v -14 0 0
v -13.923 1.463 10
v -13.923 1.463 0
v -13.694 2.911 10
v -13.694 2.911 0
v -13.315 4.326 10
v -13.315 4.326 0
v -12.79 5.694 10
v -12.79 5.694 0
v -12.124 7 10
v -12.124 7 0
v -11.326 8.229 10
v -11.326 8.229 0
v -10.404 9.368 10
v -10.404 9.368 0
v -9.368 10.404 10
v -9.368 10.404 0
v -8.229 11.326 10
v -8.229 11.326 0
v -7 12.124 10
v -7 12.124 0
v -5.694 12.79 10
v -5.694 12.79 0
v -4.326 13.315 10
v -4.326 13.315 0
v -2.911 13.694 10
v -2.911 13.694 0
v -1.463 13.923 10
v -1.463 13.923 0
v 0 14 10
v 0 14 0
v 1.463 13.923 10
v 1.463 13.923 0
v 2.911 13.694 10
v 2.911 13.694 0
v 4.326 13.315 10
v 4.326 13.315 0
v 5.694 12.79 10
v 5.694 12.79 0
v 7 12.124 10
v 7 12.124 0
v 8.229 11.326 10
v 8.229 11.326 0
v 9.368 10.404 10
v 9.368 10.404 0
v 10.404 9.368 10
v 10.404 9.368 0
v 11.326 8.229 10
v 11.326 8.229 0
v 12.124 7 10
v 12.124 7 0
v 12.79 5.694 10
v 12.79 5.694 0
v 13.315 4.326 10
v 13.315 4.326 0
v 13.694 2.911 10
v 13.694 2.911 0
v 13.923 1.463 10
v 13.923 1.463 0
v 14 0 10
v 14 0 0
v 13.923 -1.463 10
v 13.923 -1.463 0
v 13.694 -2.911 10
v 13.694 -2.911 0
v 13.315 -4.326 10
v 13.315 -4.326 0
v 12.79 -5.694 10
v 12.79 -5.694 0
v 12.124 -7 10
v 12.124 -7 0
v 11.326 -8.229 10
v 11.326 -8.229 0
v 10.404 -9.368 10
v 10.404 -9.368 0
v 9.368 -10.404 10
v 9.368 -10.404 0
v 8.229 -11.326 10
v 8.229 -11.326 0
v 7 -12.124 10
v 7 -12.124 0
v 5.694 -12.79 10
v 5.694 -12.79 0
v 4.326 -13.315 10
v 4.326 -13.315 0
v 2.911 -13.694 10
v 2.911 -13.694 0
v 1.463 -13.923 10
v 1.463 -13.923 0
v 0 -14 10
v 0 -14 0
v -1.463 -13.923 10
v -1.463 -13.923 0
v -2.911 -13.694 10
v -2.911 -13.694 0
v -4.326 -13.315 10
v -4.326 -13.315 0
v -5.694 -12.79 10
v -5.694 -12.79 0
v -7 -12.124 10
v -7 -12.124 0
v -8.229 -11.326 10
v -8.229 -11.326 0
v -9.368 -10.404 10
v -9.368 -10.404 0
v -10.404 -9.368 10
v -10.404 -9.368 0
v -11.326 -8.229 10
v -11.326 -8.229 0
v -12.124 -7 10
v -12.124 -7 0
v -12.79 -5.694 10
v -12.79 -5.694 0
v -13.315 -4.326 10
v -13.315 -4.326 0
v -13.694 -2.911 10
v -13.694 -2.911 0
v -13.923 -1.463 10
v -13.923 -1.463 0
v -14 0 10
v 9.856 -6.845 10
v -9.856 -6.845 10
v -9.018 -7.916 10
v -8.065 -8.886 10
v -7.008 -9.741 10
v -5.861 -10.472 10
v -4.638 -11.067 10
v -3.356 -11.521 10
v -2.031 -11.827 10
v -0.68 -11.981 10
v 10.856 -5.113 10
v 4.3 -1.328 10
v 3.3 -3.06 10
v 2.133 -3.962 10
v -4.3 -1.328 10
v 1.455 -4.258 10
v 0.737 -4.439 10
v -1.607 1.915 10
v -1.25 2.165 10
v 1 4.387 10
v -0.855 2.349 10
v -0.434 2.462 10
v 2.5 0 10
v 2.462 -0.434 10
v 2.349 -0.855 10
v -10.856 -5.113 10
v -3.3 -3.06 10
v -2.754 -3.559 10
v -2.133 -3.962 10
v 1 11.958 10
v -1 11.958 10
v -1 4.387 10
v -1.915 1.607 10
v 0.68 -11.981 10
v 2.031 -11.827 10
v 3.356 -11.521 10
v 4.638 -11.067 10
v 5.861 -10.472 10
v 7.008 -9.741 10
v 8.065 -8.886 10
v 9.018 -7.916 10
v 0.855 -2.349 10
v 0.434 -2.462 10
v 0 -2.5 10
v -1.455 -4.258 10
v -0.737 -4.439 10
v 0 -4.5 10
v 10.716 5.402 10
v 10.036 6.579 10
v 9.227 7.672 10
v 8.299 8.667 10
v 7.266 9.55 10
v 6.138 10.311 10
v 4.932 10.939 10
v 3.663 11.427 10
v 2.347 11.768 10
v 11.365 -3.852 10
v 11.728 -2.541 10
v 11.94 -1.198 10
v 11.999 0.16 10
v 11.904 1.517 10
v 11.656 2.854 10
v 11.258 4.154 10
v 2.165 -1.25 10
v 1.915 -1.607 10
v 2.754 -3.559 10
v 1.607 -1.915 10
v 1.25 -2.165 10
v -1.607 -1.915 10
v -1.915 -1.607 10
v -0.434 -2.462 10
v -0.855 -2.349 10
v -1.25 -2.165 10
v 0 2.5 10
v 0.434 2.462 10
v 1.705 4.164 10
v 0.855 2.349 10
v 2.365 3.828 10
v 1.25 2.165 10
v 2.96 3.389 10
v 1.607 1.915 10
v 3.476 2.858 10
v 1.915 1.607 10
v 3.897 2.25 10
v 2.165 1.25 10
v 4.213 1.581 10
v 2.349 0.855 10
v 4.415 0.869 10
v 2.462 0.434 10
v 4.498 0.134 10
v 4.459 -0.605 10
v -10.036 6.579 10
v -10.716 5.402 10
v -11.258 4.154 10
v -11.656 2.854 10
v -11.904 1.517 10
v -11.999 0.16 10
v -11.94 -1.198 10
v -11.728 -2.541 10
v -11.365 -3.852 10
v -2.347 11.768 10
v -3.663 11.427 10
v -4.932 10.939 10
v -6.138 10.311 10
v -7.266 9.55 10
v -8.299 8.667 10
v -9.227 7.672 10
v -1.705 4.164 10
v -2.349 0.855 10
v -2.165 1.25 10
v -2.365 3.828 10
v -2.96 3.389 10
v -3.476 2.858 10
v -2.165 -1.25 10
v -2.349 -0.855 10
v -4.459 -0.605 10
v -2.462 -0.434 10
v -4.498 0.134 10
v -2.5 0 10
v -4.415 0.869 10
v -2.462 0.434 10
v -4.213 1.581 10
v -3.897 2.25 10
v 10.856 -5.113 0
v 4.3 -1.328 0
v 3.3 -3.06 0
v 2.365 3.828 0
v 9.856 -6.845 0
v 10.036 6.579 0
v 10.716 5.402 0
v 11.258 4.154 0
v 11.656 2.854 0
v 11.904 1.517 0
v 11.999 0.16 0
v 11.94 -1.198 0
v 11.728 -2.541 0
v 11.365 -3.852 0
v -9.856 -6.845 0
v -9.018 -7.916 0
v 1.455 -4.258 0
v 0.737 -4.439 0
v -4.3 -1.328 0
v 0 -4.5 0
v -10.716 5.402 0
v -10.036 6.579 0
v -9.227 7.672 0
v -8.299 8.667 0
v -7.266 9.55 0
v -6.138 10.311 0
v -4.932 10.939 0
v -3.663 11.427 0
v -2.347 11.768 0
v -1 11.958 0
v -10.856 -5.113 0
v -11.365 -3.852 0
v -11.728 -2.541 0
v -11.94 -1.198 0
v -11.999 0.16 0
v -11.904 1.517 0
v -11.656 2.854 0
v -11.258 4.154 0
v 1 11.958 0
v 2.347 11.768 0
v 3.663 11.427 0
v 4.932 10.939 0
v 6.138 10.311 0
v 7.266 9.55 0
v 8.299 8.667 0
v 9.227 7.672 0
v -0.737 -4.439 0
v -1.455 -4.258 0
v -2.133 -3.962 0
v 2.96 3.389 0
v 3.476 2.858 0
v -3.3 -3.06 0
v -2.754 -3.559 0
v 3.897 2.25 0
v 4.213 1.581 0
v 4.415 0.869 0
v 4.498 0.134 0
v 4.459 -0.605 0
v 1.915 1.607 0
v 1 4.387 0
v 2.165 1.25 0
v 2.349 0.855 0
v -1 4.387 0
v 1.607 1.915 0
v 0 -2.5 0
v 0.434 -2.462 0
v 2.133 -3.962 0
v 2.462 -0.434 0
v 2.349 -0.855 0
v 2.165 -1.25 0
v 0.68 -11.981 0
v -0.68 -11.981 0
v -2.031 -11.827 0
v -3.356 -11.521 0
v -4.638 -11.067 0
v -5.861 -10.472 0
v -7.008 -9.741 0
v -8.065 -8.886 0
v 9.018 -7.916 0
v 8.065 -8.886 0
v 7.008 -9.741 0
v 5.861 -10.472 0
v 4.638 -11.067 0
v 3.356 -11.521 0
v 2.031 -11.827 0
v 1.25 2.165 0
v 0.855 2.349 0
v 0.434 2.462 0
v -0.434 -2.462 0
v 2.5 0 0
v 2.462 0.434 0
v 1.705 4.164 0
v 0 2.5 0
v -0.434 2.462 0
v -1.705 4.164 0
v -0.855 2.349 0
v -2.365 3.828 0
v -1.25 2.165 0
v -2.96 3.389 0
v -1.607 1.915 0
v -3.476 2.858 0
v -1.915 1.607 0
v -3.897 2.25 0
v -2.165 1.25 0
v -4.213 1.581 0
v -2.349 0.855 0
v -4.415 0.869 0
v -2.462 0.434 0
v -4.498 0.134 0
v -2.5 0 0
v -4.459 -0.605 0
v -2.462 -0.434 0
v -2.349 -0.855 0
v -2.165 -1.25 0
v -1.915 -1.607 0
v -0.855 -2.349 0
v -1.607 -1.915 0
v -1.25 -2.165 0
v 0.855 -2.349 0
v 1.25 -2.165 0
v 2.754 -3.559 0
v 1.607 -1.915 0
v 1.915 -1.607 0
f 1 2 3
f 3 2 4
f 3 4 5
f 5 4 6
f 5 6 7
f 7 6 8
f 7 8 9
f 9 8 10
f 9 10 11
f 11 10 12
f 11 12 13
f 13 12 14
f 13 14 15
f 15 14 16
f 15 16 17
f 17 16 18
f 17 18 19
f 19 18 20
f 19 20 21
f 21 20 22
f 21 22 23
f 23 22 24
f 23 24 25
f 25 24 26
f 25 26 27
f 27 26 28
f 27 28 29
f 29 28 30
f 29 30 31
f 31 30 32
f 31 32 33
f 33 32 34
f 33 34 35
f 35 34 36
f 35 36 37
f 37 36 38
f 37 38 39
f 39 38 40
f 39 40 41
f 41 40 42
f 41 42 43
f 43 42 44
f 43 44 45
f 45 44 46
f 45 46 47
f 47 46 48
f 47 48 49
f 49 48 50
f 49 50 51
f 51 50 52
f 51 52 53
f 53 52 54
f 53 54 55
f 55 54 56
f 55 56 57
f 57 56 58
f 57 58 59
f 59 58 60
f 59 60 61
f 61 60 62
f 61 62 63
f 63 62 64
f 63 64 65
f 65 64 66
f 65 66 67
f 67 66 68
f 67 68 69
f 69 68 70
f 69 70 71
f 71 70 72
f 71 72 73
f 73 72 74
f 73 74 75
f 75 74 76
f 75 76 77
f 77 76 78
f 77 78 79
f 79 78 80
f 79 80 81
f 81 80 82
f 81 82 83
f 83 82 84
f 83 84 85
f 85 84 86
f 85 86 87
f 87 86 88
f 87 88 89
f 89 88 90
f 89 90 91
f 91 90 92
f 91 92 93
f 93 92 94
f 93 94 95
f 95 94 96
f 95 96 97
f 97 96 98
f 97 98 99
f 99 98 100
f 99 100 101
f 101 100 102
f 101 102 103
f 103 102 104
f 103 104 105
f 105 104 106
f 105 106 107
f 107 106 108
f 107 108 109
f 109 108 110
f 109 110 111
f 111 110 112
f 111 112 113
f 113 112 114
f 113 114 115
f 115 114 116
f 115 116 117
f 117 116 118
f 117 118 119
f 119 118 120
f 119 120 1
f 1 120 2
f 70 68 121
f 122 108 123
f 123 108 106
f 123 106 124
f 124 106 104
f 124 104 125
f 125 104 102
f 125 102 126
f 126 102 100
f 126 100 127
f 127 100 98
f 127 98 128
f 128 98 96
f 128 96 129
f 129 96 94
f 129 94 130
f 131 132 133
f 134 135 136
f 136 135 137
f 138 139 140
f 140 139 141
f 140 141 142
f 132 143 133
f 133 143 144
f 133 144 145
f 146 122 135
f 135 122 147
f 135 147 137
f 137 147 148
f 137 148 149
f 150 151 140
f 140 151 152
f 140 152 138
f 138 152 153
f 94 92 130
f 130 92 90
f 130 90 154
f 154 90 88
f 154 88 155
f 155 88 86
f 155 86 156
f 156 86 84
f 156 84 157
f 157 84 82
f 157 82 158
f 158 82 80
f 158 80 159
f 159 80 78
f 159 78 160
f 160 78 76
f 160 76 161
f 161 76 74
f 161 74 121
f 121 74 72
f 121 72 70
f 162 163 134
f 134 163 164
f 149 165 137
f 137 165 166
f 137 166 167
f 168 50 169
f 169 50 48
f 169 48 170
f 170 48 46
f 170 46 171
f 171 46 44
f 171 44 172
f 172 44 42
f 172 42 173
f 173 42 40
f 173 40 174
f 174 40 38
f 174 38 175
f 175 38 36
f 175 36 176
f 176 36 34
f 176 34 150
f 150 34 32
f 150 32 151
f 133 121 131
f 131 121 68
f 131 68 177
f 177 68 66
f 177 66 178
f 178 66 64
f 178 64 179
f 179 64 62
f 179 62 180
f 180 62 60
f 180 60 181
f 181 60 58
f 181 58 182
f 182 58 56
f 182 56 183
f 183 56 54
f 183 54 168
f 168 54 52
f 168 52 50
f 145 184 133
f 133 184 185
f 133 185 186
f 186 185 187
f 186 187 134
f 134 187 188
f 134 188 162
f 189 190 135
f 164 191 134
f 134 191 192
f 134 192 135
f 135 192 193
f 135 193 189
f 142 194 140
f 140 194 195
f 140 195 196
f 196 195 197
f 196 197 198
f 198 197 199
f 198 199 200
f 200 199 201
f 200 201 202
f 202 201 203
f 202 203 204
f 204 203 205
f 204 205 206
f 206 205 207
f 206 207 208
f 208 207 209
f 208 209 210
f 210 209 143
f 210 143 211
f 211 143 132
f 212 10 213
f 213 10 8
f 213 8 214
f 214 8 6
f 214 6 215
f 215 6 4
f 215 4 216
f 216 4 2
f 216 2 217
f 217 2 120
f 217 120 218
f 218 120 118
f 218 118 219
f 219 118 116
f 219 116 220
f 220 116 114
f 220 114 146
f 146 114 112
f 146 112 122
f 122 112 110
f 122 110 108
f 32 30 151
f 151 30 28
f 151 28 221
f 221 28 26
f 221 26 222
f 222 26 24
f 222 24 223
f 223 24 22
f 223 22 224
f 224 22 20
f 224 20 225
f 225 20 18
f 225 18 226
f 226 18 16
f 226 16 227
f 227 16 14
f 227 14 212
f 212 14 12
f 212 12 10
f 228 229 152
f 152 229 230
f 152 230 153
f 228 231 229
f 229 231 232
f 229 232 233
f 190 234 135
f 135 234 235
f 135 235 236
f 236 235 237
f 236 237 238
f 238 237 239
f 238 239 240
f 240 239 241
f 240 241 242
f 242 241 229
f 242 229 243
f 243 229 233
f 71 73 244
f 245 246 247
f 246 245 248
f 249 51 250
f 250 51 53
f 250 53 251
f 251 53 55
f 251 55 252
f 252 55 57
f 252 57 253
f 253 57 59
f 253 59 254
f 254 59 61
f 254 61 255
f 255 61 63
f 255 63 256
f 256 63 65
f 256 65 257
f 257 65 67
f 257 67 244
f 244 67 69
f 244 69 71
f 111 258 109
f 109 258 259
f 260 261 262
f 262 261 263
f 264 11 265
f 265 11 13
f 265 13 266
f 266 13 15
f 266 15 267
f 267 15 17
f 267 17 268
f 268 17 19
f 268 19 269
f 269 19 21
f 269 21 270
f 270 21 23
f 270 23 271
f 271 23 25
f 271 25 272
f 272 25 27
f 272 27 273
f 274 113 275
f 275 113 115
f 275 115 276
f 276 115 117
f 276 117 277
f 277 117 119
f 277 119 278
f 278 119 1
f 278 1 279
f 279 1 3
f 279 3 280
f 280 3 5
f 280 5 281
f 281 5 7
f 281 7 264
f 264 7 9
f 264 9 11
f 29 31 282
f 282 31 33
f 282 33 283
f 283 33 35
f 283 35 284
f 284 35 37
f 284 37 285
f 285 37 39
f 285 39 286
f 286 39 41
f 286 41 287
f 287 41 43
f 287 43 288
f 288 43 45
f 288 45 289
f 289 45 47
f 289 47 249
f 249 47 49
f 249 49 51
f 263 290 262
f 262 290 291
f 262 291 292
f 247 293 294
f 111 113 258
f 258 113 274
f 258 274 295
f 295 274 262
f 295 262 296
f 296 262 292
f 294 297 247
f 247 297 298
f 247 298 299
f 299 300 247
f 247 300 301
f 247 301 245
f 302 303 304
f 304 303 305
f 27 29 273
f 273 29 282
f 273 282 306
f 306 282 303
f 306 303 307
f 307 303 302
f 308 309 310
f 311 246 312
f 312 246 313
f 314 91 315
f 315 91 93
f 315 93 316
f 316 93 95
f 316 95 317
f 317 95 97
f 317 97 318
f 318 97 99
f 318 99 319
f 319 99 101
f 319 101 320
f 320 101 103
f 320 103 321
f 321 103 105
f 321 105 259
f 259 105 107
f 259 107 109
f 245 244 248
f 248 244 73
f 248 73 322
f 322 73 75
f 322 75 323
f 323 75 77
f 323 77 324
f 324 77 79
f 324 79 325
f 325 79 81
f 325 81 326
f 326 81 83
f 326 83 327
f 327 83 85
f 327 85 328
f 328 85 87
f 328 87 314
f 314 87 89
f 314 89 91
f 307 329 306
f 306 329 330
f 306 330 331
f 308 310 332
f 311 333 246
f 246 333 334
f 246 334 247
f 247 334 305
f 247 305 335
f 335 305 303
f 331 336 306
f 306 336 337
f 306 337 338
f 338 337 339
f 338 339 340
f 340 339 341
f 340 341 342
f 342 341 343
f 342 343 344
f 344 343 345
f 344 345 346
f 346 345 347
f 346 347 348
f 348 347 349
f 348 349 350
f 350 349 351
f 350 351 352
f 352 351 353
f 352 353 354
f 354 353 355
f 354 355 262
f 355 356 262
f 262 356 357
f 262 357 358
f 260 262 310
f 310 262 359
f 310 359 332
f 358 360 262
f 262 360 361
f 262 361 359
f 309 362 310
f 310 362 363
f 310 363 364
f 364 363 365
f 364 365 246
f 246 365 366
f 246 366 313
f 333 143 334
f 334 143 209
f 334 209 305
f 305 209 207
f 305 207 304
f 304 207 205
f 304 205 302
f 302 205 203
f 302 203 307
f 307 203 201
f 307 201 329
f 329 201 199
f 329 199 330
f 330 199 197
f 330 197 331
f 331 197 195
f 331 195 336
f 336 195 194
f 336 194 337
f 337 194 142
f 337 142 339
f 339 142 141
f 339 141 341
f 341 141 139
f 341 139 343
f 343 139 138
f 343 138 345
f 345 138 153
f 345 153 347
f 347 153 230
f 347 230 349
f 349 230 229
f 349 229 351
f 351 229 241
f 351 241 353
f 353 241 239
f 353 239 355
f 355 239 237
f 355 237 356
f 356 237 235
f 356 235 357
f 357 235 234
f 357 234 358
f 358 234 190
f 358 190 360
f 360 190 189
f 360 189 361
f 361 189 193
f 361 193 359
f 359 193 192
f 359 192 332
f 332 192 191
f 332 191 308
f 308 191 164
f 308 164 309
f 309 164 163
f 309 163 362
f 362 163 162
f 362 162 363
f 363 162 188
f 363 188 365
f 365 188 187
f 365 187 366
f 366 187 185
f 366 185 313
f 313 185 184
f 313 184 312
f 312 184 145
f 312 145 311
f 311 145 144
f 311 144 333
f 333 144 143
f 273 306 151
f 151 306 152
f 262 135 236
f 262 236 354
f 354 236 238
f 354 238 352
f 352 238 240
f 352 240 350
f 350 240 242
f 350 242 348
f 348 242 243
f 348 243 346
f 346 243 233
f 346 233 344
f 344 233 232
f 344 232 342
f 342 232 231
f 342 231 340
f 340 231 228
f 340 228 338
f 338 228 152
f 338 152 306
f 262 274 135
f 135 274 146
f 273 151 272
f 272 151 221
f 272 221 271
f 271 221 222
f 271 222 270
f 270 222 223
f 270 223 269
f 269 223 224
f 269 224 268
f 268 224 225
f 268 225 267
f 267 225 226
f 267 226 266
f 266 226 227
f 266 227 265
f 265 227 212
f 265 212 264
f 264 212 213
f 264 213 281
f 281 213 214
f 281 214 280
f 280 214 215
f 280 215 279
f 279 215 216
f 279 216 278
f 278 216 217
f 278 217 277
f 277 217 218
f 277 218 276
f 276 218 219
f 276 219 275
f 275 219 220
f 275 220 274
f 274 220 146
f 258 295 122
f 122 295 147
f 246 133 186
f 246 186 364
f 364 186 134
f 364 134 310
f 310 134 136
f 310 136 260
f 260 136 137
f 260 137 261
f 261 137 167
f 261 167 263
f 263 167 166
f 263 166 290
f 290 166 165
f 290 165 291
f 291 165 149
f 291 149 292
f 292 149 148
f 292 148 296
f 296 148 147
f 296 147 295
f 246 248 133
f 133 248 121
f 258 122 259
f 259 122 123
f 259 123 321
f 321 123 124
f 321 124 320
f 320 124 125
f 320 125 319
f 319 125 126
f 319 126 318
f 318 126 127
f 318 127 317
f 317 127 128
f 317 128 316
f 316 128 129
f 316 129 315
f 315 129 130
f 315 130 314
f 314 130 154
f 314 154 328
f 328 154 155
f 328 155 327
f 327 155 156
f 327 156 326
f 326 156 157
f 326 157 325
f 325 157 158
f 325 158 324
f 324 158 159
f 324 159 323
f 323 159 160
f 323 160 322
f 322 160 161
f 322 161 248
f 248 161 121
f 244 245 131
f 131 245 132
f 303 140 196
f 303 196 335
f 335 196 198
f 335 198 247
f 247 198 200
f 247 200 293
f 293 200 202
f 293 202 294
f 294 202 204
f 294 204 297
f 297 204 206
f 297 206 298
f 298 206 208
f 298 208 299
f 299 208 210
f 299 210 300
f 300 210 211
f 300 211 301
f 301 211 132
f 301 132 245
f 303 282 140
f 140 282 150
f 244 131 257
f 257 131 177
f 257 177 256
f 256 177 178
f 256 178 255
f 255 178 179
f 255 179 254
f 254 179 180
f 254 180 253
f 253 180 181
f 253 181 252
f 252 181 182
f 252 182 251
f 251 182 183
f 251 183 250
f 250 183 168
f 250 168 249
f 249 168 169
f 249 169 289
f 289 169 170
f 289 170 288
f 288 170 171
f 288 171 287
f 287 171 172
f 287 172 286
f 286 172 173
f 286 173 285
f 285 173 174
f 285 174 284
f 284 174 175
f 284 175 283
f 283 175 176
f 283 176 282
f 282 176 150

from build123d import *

# Parameters (mm, degrees)
SKETCH8_R           = 14
BOSS_EXTRUDE6_DEPTH = 10
SKETCH9_R           = 2.5
CUT_EXTRUDE1_DEPTH  = 10
CUT_EXTRUDE2_DEPTH  = 10


with BuildPart() as part:
    # Sketch8 → Boss-Extrude6 (new body)
    with BuildSketch(Plane.XY):
        Circle(SKETCH8_R)
    extrude(amount=BOSS_EXTRUDE6_DEPTH)

    # Sketch9 → Cut-Extrude1 (cut)
    with BuildSketch(Plane.XY.offset(10)):
        Circle(SKETCH9_R)
    extrude(amount=-CUT_EXTRUDE1_DEPTH, mode=Mode.SUBTRACT)

    # Sketch10 → Cut-Extrude2 (cut)
    with BuildSketch(Plane.XY.offset(10)):
        with BuildLine():
            ThreePointArc((-4.299671038, -1.327715693), (-3.897114317, 2.25), (-1, 4.387482194))
            Line((-1, 4.387482194), (-1, 11.958260743))
            ThreePointArc((-1, 11.958260743), (-10.392304845, 6), (-10.856157589, -5.113104968))
            Line((-10.856157589, -5.113104968), (-4.299671038, -1.327715693))
        make_face()
        with BuildLine():
            Line((1, 11.958260743), (1, 4.387482194))
            ThreePointArc((1, 4.387482194), (3.51781182, 2.80624304), (4.5, 0))
            ThreePointArc((4.5, 0), (4.449635922, -0.671371852), (4.299671038, -1.327715693))
            Line((4.299671038, -1.327715693), (10.856157589, -5.113104968))
            ThreePointArc((10.856157589, -5.113104968), (11.710548473, -2.619743207), (12, 0))
            ThreePointArc((12, 0), (8.831760866, 8.124038405), (1, 11.958260743))
        make_face()
        with BuildLine():
            ThreePointArc((3.299671038, -3.059766501), (0, -4.5), (-3.299671038, -3.059766501))
            Line((-3.299671038, -3.059766501), (-9.856157589, -6.845155775))
            ThreePointArc((-9.856157589, -6.845155775), (0, -12), (9.856157589, -6.845155775))
            Line((9.856157589, -6.845155775), (3.299671038, -3.059766501))
        make_face()
    extrude(amount=-CUT_EXTRUDE2_DEPTH, mode=Mode.SUBTRACT)


solid = part.part
